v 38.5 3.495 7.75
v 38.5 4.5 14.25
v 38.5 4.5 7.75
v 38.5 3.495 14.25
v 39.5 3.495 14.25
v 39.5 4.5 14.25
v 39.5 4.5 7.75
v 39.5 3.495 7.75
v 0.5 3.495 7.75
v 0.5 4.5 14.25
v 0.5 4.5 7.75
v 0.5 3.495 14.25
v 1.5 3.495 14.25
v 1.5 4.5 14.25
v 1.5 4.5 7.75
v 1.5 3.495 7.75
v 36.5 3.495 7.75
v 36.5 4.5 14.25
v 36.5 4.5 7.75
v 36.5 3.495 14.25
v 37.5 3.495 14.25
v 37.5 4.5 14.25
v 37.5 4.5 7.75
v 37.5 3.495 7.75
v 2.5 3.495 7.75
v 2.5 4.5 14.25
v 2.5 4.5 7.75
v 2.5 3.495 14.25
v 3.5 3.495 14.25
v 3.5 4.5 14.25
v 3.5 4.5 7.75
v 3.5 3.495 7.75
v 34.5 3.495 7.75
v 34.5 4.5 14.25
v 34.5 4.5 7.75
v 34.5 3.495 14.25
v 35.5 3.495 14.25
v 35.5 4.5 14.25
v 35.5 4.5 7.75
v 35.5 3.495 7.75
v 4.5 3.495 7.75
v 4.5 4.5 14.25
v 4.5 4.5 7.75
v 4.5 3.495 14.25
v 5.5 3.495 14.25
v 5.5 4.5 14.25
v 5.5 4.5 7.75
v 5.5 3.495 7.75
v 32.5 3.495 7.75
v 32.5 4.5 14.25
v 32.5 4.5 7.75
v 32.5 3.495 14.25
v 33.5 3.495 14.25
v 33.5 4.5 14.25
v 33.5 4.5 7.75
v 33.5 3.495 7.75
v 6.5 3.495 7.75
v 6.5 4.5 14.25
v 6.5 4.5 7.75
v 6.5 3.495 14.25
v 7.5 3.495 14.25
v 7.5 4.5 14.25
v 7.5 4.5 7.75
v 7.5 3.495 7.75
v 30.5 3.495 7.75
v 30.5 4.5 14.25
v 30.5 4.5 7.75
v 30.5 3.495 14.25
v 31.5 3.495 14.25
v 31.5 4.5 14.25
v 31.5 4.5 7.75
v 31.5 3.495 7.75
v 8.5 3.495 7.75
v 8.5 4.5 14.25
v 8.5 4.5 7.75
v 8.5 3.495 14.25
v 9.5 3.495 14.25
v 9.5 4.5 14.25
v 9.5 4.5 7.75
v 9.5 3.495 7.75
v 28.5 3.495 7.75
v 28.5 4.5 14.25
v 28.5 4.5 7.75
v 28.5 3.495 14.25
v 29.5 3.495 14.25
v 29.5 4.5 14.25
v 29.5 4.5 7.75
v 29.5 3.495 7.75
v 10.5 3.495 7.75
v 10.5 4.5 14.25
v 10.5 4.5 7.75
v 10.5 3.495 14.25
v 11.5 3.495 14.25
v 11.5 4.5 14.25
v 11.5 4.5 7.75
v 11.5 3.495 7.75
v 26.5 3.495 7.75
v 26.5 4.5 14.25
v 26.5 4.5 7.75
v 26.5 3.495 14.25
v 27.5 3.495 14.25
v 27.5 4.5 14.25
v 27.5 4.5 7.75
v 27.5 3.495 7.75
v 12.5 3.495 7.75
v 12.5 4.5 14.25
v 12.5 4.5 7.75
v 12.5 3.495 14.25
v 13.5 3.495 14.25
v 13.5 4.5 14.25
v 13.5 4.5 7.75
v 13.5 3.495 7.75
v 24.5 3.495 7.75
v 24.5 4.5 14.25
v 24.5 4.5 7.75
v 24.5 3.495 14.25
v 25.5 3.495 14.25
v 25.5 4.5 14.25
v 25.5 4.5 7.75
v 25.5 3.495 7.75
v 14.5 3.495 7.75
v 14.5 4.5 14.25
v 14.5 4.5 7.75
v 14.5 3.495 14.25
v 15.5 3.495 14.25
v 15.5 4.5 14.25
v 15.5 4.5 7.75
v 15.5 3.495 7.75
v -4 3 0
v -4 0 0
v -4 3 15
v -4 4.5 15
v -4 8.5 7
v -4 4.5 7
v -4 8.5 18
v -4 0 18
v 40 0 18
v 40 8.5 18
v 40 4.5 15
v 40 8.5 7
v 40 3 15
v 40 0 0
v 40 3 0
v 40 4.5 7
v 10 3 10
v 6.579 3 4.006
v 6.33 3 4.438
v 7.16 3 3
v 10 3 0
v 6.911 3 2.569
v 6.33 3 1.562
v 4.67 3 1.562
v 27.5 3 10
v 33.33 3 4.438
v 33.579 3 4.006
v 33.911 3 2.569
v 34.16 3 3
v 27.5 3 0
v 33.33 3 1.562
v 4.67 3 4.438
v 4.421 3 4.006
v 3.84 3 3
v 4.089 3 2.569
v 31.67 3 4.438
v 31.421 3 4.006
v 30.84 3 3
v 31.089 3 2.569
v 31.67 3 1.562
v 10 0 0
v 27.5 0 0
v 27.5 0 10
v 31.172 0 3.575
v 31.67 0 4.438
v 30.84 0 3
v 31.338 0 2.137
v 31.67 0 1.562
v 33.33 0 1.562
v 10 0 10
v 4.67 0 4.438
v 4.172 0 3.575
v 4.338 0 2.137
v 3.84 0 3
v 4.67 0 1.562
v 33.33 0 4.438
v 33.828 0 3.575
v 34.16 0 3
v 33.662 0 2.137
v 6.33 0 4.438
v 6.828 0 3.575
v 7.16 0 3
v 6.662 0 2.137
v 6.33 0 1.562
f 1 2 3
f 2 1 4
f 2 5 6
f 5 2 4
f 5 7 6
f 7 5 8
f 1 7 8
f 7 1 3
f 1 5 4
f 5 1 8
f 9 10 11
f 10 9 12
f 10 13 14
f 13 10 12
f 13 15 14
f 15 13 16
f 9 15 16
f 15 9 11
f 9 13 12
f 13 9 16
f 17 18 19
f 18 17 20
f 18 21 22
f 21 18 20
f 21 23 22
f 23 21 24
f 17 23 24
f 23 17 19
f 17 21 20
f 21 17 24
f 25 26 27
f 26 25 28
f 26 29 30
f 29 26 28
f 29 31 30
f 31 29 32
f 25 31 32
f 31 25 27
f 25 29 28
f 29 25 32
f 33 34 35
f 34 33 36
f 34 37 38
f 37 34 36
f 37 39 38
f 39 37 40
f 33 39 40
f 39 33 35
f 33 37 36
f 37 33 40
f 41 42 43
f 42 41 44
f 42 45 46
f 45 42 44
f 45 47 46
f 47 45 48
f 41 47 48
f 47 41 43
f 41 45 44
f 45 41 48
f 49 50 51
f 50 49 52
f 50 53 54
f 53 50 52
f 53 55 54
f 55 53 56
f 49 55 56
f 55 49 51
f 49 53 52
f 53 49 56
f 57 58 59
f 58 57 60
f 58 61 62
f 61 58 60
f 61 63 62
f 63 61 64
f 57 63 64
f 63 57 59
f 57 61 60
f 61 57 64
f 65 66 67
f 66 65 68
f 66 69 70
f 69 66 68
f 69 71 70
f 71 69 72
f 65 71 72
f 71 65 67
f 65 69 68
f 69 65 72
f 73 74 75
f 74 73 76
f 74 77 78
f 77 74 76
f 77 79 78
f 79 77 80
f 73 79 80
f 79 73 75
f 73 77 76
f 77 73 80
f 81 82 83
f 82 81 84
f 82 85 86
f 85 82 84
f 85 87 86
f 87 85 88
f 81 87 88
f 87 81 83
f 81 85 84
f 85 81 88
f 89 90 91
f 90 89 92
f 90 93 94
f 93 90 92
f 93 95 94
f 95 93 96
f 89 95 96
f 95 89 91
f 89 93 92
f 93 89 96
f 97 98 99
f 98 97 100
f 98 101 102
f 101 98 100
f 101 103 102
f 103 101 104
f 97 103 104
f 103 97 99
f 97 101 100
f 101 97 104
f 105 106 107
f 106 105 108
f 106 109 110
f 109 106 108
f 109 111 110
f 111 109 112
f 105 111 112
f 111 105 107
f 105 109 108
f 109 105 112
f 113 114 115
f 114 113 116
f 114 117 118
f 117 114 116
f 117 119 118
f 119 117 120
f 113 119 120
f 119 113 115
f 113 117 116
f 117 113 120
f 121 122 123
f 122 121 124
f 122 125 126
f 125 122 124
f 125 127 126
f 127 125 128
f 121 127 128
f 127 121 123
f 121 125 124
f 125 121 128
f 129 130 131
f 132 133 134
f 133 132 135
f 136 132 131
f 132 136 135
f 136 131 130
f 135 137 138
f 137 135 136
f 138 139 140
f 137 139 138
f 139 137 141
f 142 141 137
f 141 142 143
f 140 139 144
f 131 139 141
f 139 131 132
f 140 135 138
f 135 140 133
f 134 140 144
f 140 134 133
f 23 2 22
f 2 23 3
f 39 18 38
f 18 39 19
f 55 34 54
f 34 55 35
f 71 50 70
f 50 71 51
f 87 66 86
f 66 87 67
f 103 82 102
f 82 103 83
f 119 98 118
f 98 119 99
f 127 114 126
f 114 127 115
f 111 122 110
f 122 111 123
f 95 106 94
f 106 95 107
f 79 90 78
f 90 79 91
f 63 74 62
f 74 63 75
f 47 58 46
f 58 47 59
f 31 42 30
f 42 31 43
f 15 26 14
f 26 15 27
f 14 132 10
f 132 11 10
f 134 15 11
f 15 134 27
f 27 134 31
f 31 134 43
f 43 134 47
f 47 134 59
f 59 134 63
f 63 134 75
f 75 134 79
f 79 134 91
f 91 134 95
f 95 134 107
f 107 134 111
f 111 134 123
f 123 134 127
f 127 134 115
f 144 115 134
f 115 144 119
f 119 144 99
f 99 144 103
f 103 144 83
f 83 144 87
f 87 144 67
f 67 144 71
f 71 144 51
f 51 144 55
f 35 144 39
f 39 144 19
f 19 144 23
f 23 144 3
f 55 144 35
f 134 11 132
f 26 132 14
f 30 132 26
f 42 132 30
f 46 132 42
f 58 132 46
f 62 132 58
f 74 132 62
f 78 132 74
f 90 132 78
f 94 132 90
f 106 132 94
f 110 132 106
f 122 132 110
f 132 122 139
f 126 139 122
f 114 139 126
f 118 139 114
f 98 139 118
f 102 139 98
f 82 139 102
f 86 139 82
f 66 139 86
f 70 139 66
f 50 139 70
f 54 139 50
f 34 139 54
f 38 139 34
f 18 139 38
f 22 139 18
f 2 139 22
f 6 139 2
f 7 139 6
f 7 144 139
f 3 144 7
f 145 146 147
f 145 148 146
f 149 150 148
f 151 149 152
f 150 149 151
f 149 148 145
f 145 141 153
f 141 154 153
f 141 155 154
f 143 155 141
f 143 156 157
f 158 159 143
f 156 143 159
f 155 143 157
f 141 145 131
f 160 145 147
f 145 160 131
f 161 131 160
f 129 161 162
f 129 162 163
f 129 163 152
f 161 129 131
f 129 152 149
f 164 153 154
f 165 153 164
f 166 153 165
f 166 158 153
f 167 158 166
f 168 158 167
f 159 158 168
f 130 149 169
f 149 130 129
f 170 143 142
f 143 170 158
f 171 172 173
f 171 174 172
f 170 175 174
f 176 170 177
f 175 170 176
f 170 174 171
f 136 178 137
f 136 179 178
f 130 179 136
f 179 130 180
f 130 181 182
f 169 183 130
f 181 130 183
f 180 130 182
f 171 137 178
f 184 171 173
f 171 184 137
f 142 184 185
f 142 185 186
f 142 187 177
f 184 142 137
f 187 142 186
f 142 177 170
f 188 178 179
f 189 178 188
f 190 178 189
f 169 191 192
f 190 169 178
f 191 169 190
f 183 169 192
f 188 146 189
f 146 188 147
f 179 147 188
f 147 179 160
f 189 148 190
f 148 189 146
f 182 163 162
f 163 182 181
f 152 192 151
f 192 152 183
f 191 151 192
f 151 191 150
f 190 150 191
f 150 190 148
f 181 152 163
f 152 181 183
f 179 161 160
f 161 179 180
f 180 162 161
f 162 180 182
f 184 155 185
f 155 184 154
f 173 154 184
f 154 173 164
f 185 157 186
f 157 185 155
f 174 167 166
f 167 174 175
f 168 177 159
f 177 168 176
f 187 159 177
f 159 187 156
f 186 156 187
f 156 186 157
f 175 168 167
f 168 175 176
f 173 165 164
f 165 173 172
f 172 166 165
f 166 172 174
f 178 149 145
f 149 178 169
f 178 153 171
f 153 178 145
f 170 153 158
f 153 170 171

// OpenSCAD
// how many teeth on each side
teeth = 8;

// width of the belt in mm incl clearance (use 6.25 for typical GT2 belt)
belt_width = 6.5;

// thickness of the belt in mm (use 1.5 for GT2 belt)
belt_thickness = 1.5;

// belt pitch in mm (use 2.0 for GT2 belt)
pitch = 2.0;

// this controls the strength of the bracket 
shell = 1.5;

/* [Hidden] */
cutout_width = 6 + belt_thickness + shell;
len = 2*teeth*pitch + cutout_width;
round_corner_epsilon = 1;
epsilon = 0.01;


module clipTop()
{
    difference()
    {
      translate([-4,0,0])
    cube([44,3,18]);
 
    translate([5.5,1,3])
    rotate([90,0,0])
    cylinder(r=1.66, h=10, center=true);
    
    translate([32.5,1,3])
    rotate([90,0,0])
    cylinder(r=1.66, h=10, center=true);

    translate([10,0,0])
    cube([17.5,3,10]);
    }
}

module clipBottom()
{
     difference()
    {
        union()
        {
    translate([-4,-2.5,15])      
    cube([44,6,3]); 
    translate([-4,-0.5,7])       
    cube([44,4,8]);
    
    translate([20,-3,11])
    // belt teeth
	for(i=[1:1:teeth]) {

		// left side
		color([1,0, 0])
		translate([len/2 + pitch/4 - i*pitch, shell + belt_thickness/2, 0])
			cube([pitch/2, belt_thickness + epsilon, belt_width], center=true);

		// right side 
		color([1,0, 0])
		translate([-len/2 - pitch/4 + i*pitch, shell + belt_thickness/2, 0])
			cube([pitch/2, belt_thickness + epsilon, belt_width], center=true);
	};
}
  

  //  translate([10,0,0])
 //   cube([15.5,3,15]);
}
}

clipTop();
translate([0,5,0])
clipBottom();
